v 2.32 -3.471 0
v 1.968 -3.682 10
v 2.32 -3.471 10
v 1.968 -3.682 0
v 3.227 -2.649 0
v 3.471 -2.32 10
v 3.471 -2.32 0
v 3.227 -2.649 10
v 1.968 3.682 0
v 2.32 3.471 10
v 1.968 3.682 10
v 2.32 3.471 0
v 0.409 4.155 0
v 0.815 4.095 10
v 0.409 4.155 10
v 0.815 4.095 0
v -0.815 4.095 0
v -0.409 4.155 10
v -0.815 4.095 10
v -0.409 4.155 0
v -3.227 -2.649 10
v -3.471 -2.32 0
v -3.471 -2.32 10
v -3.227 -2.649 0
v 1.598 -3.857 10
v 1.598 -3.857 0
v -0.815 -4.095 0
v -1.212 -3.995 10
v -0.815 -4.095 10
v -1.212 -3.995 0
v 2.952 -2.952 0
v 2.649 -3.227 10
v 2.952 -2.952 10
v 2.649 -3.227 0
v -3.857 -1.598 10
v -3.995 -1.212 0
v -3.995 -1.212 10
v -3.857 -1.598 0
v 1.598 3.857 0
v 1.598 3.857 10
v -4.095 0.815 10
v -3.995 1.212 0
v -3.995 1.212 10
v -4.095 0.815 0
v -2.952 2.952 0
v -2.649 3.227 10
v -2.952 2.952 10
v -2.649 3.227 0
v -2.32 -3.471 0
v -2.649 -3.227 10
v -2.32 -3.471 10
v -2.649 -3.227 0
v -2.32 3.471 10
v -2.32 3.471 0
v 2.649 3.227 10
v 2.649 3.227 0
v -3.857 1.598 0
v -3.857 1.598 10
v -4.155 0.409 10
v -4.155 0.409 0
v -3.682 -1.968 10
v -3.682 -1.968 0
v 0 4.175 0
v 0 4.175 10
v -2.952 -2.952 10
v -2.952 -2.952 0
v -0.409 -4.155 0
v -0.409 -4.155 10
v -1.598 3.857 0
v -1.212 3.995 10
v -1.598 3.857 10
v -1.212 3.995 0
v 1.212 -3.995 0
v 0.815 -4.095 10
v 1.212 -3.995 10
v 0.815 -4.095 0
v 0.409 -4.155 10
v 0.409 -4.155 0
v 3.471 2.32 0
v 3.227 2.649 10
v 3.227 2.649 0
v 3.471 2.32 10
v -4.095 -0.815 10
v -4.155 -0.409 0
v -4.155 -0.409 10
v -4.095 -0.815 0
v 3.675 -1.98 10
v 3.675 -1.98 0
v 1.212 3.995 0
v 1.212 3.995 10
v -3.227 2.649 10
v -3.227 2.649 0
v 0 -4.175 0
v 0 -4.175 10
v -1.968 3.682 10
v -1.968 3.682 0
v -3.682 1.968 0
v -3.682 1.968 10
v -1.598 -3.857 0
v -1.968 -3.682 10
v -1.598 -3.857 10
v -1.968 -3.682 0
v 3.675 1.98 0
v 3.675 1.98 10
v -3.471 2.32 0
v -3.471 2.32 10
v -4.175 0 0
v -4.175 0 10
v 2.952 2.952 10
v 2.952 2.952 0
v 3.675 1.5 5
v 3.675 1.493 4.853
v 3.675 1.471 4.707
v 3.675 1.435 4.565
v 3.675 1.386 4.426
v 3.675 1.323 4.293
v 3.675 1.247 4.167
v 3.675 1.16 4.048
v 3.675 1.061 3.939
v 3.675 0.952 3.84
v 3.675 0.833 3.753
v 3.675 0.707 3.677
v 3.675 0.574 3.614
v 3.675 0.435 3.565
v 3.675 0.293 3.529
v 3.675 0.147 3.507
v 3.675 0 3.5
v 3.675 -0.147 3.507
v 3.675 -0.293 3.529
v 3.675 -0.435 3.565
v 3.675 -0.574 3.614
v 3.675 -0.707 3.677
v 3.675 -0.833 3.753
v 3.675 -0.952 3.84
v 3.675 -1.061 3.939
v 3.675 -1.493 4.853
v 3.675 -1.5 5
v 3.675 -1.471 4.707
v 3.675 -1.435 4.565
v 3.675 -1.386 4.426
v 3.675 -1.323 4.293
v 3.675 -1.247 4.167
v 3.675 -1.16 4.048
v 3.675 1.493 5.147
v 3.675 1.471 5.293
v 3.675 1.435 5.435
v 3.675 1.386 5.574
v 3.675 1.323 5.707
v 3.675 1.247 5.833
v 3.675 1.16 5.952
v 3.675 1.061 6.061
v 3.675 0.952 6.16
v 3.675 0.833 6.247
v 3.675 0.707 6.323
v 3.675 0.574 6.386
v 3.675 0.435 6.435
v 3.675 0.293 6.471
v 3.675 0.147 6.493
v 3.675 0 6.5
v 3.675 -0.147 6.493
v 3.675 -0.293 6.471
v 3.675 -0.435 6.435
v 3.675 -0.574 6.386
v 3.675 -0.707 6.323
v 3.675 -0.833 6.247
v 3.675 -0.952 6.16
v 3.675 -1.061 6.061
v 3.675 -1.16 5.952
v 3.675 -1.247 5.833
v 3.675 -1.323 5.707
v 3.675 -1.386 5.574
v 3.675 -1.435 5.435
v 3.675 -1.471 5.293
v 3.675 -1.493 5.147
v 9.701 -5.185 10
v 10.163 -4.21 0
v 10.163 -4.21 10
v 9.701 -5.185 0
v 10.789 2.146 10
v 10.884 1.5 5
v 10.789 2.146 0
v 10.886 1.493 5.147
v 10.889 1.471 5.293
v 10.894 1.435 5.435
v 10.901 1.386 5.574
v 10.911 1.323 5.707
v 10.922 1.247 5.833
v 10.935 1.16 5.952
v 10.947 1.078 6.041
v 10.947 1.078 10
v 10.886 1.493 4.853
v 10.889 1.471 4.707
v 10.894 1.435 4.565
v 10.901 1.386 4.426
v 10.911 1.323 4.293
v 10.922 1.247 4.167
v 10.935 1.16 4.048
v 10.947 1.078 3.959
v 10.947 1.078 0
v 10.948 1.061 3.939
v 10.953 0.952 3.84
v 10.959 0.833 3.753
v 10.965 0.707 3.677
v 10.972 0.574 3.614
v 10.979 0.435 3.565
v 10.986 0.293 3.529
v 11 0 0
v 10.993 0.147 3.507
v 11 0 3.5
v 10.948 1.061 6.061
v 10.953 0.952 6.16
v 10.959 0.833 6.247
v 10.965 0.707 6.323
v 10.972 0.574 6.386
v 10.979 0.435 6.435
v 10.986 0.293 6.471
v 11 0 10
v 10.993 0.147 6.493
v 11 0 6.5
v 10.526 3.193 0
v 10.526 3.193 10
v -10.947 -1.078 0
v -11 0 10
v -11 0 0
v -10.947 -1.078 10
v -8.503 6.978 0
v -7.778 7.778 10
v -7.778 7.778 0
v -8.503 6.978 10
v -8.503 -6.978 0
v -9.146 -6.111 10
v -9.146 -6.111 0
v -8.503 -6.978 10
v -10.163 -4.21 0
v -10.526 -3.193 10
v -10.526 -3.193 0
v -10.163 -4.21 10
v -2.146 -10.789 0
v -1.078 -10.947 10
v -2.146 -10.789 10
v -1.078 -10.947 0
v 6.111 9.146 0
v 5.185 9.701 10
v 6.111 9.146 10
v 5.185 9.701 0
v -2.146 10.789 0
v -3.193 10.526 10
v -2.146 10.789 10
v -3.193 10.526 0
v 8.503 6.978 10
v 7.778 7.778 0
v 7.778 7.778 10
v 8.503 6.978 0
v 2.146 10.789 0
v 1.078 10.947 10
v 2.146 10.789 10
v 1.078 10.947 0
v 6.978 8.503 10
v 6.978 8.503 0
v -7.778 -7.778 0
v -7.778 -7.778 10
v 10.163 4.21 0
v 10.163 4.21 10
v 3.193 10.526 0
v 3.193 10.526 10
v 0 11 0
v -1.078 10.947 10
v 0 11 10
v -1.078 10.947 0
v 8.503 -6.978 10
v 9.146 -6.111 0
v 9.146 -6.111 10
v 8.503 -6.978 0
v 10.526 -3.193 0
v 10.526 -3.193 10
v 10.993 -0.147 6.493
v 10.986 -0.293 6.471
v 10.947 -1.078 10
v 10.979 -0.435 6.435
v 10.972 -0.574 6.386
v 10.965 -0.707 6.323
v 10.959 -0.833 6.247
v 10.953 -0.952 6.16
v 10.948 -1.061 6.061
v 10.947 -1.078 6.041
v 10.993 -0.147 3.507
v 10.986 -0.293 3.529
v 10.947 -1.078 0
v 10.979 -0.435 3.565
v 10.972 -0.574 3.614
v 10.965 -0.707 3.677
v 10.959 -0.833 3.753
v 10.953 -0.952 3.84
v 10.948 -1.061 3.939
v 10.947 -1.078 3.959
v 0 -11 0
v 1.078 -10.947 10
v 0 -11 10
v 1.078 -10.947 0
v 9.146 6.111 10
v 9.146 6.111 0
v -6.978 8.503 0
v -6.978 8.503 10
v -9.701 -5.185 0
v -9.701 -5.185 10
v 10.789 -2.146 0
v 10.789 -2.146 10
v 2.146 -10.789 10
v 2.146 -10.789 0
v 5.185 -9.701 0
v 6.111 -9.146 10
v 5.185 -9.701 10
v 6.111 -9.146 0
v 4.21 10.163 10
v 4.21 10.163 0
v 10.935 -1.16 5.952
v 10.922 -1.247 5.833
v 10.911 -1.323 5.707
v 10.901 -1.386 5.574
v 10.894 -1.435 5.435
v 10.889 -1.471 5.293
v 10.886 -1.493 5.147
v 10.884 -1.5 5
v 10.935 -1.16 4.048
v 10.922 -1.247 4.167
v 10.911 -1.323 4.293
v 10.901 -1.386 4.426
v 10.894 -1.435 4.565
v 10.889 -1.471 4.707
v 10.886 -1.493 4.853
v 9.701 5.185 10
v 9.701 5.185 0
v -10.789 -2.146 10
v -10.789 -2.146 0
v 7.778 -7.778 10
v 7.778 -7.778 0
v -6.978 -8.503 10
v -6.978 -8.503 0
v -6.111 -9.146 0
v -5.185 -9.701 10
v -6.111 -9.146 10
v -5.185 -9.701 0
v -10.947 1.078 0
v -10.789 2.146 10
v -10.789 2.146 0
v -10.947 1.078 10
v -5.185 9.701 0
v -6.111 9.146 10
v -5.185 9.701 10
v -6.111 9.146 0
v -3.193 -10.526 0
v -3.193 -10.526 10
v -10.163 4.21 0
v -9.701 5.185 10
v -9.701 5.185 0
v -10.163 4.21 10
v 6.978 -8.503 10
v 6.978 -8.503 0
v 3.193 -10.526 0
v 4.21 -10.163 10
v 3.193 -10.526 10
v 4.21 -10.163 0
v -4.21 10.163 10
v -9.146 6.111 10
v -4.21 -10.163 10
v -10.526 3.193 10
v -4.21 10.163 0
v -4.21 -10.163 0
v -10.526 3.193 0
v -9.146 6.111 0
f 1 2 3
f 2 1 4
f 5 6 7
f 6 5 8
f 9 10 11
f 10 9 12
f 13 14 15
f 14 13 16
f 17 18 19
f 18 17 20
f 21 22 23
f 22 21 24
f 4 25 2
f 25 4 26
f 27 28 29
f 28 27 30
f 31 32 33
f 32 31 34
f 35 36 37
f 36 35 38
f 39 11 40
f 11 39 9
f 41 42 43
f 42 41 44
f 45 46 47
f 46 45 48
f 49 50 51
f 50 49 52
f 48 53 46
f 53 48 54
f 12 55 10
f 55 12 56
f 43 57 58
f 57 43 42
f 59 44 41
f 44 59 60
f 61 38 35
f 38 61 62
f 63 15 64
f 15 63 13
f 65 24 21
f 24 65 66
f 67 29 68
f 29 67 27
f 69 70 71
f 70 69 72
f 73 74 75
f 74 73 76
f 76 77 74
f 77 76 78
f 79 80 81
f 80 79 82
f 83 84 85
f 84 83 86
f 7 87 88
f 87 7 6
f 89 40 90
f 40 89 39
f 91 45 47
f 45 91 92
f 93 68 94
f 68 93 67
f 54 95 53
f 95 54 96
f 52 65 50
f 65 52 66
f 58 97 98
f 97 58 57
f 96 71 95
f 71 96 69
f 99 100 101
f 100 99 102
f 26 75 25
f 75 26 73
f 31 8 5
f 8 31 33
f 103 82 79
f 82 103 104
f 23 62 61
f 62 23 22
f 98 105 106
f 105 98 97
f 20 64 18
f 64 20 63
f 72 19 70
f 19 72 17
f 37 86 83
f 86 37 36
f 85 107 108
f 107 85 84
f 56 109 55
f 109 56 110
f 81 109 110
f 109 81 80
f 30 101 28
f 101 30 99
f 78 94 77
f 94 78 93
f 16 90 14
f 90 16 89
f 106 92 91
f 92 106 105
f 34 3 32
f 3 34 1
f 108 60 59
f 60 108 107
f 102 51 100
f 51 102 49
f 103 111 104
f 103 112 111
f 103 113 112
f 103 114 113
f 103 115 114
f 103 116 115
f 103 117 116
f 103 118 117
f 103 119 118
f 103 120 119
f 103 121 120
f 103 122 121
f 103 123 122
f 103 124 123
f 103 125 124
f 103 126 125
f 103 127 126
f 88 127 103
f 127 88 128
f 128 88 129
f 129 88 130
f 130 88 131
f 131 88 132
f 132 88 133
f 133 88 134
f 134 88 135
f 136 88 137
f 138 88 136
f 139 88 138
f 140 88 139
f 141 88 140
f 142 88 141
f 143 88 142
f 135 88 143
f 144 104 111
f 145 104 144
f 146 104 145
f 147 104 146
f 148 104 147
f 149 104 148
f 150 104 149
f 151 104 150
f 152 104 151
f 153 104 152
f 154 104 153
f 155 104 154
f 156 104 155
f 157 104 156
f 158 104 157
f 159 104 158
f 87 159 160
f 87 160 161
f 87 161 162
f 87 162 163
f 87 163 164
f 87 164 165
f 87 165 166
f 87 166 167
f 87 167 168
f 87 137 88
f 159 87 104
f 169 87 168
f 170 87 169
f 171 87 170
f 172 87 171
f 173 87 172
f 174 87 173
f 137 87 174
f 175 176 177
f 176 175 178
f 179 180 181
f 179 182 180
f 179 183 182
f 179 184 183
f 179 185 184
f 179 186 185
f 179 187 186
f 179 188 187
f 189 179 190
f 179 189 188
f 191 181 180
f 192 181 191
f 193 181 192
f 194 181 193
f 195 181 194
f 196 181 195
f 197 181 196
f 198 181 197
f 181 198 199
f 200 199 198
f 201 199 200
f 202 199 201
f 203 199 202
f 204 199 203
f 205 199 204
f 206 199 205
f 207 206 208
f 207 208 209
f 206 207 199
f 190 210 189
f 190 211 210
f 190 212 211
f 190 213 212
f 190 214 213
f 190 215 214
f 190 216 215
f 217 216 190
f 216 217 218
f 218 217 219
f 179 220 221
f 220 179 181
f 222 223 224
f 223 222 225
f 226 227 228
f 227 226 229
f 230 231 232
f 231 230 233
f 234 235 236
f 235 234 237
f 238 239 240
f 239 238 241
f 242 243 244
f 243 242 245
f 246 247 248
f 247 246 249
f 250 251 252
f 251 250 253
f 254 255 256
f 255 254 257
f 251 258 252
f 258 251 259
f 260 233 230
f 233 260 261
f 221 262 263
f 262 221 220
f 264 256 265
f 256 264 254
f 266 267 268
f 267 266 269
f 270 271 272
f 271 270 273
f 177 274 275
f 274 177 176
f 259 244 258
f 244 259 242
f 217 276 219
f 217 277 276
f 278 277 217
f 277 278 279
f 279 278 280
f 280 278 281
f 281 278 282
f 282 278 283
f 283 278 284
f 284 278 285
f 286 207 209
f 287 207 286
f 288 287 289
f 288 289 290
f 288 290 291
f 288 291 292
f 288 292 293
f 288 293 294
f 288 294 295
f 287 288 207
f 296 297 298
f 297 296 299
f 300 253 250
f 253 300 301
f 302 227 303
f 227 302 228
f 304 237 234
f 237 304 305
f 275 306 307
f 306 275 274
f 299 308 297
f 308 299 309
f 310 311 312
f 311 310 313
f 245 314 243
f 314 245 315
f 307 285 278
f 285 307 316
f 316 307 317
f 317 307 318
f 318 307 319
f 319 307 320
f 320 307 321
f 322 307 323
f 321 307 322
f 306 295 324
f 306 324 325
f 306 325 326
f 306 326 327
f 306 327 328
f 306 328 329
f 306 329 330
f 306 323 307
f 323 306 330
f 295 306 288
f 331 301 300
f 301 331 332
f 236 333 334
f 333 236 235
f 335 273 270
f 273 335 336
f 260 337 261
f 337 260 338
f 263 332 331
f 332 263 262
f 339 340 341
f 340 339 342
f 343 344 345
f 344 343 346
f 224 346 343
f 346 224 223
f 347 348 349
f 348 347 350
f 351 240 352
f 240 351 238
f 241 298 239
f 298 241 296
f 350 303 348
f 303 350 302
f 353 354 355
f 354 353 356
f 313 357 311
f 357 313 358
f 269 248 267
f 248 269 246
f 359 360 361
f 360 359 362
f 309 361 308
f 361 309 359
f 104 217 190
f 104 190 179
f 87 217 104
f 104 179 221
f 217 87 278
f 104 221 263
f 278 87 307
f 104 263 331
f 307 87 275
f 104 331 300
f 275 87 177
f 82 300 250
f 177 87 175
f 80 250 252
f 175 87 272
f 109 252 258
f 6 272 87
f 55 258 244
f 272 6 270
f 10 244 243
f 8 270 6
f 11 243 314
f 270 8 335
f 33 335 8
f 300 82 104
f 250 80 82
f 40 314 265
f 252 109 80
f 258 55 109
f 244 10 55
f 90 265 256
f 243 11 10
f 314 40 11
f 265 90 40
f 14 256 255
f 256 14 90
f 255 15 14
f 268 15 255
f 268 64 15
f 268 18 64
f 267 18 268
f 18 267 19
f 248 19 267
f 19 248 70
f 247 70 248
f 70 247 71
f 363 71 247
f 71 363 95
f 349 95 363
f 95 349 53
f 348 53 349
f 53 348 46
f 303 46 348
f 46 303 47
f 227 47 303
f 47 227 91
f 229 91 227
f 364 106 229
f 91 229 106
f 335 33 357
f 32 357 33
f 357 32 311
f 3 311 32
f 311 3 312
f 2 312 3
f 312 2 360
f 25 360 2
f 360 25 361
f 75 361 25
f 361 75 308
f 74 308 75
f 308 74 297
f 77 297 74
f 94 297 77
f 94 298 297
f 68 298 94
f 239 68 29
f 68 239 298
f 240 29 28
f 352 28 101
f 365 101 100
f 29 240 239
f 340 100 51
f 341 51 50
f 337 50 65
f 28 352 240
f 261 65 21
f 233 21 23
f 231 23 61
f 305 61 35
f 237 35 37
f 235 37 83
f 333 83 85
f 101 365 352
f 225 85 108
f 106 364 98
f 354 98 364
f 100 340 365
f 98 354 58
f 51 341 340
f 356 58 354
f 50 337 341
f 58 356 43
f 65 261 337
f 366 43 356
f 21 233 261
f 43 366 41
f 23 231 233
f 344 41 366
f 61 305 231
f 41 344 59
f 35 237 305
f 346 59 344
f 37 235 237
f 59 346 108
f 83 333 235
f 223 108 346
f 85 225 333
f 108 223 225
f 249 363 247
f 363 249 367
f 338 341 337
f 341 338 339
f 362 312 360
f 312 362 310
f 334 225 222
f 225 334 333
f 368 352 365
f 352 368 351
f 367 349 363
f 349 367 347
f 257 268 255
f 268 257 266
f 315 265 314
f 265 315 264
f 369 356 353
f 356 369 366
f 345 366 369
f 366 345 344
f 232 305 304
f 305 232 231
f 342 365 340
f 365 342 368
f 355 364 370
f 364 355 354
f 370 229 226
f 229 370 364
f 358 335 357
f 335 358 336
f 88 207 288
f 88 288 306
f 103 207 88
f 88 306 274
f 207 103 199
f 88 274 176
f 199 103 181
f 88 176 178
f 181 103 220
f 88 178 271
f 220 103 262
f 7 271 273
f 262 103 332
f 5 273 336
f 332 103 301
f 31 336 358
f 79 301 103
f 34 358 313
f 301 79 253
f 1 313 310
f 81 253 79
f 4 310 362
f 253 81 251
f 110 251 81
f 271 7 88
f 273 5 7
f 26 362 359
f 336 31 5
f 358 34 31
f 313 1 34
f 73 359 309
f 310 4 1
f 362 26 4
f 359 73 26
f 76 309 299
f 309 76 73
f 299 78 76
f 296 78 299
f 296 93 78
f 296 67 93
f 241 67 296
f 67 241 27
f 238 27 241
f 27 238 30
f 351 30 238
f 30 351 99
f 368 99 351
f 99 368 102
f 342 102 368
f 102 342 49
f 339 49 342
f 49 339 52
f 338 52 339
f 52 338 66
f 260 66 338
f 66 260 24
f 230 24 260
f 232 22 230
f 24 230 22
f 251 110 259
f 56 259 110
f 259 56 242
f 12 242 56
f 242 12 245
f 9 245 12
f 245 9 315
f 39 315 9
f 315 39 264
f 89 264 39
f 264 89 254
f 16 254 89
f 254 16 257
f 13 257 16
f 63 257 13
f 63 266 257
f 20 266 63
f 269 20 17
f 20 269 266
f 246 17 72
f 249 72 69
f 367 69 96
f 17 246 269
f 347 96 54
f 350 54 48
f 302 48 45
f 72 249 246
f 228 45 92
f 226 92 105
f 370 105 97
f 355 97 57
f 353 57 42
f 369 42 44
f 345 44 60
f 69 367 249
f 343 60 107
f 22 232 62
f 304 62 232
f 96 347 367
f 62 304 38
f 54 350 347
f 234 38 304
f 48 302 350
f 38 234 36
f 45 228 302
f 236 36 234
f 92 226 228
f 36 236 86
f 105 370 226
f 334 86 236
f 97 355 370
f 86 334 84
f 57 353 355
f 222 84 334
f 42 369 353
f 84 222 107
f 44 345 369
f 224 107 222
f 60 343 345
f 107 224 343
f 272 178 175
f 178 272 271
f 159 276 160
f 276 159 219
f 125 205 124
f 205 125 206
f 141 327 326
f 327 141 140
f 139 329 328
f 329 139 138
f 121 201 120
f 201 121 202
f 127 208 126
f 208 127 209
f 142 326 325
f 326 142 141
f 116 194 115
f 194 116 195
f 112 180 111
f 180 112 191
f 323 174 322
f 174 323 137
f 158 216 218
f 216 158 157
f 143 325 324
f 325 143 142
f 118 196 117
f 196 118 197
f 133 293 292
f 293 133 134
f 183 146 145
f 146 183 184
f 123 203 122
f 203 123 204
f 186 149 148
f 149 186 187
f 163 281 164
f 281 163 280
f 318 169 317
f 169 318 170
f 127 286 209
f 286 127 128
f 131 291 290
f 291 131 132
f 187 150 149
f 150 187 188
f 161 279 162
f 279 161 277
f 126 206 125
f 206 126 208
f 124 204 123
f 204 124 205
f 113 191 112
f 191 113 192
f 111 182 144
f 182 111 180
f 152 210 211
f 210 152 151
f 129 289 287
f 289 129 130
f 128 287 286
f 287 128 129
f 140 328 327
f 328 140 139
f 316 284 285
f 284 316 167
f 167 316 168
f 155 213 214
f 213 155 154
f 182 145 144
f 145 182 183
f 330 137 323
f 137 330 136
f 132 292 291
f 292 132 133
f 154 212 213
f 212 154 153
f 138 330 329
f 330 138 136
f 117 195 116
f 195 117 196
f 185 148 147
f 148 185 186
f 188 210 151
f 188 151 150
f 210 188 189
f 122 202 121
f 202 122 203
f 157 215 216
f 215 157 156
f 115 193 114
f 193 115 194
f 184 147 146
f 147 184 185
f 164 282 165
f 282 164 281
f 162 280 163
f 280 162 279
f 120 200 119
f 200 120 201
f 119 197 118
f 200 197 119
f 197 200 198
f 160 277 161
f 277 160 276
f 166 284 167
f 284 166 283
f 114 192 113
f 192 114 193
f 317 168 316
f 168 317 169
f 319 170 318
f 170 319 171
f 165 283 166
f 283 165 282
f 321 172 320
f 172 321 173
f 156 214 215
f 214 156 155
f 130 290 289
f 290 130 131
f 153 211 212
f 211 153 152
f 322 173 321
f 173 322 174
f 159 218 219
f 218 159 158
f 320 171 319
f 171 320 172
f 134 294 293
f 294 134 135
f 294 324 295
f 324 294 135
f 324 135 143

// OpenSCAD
// file: parameters.scad
// =============================================================================
// Gen-BD — nightly 2026-10-03 (physics_scorer, honest magpylib watts)
// Clocking 0 deg (magnets N facing S) + D-flat keyed bore + index notch + flip-symmetric braces/bolts.
// Windable 2-piece bobbin; turns = physics_scorer turns_fit; copper only between flanges.
// former_web = 3.60 mm (taller copper vs Gen-BA 2.46) — gap grows with web (honest Bz tradeoff).
// Steel back-iron: two buyable mild-steel discs behind each rotor (score with --back-iron).
// =============================================================================
topology            = "dual_rotor";

// --- Wire / winding (physics_scorer winding-fit) -------------------------------
wire_awg            = 26;
wire_od             = 0.45;     // insulated OD mm (bare 0.405)
fill_realistic      = 0.60;     // insulated-wire area / window, hand-wound layered
turns               = 76;       // = physics_scorer turns_fit (do NOT raise)
coil_former_type    = "bobbin";
coil_core_inset     = 5.60;     // radial copper build: hub = copper boundary inset by this
wind_build_axial    = 0.0;      // nothing proud of the flanges
wind_build_radial   = 0.0;

// --- Bobbin (base + lid) ---------------------------------------------------------
coil_id_r           = 28.00;    // copper boundary sector (over the magnet track)
coil_od_r           = 50.00;
span_deg            = 22.42;    // = pitch - 2*asin((wall+0.85)/coil_id_r) -> >=1.2 mm stator web
former_web          = 3.60;     // copper height between flanges
flange_t            = 0.60;
wall                = 1.00;     // flange lip beyond copper
former_bare_h       = former_web + 2 * flange_t;
coil_envelope_h     = former_bare_h + 2 * wind_build_axial;
tab_w               = 7.0;
tab_len             = 7.0;
tab_h               = former_bare_h / 2;
pin_d               = 1.9;      // 1.75 mm filament locating pin
coil_mount_r        = coil_od_r + 0.2 + 4.0;
lead_y              = 1.6;
lead_slot_w         = 0.9;
lead_groove_d       = 0.6;

// --- Gap -------------------------------------------------------------------------
run_clear           = 0.50;     // rotor face -> flange
gap_spacer_h        = run_clear + wind_build_axial;
m2m                 = coil_envelope_h + 2 * run_clear;

// --- Stator ----------------------------------------------------------------------
coil_stations       = 12;
bay_clear           = 0.25;
stator_thick        = former_bare_h;                        // bobbins flush both faces
stator_od           = 162.0;
shaft_clear_stator  = 14.0;     // stator is static; shaft only

// --- Rotor(s) --------------------------------------------------------------------
magnet_Br           = 1.43;     // N52
halbach_magnetisation = "diametric"; // O5x5 assist magnets MUST be DIAMETRICALLY magnetised (tangential)
rotor_b_same_axis   = true;     // same-index magnets share one axis: N faces S across the gap
large_pocket_d      = 20.3;
small_pocket_d      = 5.3;
pocket_h            = 5.2;
large_n             = 8;
R_large             = 40.0;
R_small_inner       = 24.0;
R_small_mid         = 40.0;
R_small_outer       = 56.0;
carrier_od          = 160.0;
carrier_thick       = 7.5;
hub_h               = 10.0;
hub_od              = 30.0;
rotor_b_offset_deg  = 0.0;      // CLOCKING: magnets directly opposite
shaft_key           = "dflat";
dflat_depth         = 0.5;      // 8 mm shaft with 0.5 mm flat (7.5 across flat)
index_notch_d       = 3.0;

// --- Modular MAX interface (Gen-E family) -----------------------------------------
shaft_bore          = 8.35;
dflat_x             = 4.0 - dflat_depth + (shaft_bore - 8.0) / 2;
bearing_d           = 21.85;
bearing_h           = 7.2;
m3_clear            = 3.5;
bolt_r_inner        = 30.0;
bolt_n_inner        = 4;
bolt_inner_angles   = [22.5, -22.5, 157.5, 202.5];  // between poles, flip-symmetric
flange_bolt_r       = 72.0;
flange_bolt_n       = 6;
brace_r             = 68.0;
brace_d             = 4.3;
brace_n             = 4;
brace_angles        = [45, 135, 225, 315];          // flip-symmetric

spacer_pad_od       = 14.0;
spacer_pad_id       = m3_clear;
endbell_od          = 162.0;
endbell_thick       = 8.0;
endbell_shaft_clear = 10.0;
plate_max_mm        = 410;

$fn = 64;
// main file
// Gen-BD — shaft collar with D-flat bore (set screw bears on the flat); print x4
include <parameters.scad>;
$fn = 64;
// D-flat keyed bore: flat faces +X (angle 0 = magnet pocket 0 = index notch)
module dflat_bore(h) {
    intersection() {
        cylinder(d=shaft_bore, h=h);
        translate([-shaft_bore, -shaft_bore, 0]) cube([shaft_bore + dflat_x, 2*shaft_bore, h]);
    }
}

od = 22; h = 10; set_d = 3.0;
difference() {
    cylinder(d=od, h=h);
    translate([0, 0, -0.1]) dflat_bore(h + 0.2);
    translate([0, 0, h/2]) rotate([0, 90, 0]) cylinder(d=set_d, h=od);
}
